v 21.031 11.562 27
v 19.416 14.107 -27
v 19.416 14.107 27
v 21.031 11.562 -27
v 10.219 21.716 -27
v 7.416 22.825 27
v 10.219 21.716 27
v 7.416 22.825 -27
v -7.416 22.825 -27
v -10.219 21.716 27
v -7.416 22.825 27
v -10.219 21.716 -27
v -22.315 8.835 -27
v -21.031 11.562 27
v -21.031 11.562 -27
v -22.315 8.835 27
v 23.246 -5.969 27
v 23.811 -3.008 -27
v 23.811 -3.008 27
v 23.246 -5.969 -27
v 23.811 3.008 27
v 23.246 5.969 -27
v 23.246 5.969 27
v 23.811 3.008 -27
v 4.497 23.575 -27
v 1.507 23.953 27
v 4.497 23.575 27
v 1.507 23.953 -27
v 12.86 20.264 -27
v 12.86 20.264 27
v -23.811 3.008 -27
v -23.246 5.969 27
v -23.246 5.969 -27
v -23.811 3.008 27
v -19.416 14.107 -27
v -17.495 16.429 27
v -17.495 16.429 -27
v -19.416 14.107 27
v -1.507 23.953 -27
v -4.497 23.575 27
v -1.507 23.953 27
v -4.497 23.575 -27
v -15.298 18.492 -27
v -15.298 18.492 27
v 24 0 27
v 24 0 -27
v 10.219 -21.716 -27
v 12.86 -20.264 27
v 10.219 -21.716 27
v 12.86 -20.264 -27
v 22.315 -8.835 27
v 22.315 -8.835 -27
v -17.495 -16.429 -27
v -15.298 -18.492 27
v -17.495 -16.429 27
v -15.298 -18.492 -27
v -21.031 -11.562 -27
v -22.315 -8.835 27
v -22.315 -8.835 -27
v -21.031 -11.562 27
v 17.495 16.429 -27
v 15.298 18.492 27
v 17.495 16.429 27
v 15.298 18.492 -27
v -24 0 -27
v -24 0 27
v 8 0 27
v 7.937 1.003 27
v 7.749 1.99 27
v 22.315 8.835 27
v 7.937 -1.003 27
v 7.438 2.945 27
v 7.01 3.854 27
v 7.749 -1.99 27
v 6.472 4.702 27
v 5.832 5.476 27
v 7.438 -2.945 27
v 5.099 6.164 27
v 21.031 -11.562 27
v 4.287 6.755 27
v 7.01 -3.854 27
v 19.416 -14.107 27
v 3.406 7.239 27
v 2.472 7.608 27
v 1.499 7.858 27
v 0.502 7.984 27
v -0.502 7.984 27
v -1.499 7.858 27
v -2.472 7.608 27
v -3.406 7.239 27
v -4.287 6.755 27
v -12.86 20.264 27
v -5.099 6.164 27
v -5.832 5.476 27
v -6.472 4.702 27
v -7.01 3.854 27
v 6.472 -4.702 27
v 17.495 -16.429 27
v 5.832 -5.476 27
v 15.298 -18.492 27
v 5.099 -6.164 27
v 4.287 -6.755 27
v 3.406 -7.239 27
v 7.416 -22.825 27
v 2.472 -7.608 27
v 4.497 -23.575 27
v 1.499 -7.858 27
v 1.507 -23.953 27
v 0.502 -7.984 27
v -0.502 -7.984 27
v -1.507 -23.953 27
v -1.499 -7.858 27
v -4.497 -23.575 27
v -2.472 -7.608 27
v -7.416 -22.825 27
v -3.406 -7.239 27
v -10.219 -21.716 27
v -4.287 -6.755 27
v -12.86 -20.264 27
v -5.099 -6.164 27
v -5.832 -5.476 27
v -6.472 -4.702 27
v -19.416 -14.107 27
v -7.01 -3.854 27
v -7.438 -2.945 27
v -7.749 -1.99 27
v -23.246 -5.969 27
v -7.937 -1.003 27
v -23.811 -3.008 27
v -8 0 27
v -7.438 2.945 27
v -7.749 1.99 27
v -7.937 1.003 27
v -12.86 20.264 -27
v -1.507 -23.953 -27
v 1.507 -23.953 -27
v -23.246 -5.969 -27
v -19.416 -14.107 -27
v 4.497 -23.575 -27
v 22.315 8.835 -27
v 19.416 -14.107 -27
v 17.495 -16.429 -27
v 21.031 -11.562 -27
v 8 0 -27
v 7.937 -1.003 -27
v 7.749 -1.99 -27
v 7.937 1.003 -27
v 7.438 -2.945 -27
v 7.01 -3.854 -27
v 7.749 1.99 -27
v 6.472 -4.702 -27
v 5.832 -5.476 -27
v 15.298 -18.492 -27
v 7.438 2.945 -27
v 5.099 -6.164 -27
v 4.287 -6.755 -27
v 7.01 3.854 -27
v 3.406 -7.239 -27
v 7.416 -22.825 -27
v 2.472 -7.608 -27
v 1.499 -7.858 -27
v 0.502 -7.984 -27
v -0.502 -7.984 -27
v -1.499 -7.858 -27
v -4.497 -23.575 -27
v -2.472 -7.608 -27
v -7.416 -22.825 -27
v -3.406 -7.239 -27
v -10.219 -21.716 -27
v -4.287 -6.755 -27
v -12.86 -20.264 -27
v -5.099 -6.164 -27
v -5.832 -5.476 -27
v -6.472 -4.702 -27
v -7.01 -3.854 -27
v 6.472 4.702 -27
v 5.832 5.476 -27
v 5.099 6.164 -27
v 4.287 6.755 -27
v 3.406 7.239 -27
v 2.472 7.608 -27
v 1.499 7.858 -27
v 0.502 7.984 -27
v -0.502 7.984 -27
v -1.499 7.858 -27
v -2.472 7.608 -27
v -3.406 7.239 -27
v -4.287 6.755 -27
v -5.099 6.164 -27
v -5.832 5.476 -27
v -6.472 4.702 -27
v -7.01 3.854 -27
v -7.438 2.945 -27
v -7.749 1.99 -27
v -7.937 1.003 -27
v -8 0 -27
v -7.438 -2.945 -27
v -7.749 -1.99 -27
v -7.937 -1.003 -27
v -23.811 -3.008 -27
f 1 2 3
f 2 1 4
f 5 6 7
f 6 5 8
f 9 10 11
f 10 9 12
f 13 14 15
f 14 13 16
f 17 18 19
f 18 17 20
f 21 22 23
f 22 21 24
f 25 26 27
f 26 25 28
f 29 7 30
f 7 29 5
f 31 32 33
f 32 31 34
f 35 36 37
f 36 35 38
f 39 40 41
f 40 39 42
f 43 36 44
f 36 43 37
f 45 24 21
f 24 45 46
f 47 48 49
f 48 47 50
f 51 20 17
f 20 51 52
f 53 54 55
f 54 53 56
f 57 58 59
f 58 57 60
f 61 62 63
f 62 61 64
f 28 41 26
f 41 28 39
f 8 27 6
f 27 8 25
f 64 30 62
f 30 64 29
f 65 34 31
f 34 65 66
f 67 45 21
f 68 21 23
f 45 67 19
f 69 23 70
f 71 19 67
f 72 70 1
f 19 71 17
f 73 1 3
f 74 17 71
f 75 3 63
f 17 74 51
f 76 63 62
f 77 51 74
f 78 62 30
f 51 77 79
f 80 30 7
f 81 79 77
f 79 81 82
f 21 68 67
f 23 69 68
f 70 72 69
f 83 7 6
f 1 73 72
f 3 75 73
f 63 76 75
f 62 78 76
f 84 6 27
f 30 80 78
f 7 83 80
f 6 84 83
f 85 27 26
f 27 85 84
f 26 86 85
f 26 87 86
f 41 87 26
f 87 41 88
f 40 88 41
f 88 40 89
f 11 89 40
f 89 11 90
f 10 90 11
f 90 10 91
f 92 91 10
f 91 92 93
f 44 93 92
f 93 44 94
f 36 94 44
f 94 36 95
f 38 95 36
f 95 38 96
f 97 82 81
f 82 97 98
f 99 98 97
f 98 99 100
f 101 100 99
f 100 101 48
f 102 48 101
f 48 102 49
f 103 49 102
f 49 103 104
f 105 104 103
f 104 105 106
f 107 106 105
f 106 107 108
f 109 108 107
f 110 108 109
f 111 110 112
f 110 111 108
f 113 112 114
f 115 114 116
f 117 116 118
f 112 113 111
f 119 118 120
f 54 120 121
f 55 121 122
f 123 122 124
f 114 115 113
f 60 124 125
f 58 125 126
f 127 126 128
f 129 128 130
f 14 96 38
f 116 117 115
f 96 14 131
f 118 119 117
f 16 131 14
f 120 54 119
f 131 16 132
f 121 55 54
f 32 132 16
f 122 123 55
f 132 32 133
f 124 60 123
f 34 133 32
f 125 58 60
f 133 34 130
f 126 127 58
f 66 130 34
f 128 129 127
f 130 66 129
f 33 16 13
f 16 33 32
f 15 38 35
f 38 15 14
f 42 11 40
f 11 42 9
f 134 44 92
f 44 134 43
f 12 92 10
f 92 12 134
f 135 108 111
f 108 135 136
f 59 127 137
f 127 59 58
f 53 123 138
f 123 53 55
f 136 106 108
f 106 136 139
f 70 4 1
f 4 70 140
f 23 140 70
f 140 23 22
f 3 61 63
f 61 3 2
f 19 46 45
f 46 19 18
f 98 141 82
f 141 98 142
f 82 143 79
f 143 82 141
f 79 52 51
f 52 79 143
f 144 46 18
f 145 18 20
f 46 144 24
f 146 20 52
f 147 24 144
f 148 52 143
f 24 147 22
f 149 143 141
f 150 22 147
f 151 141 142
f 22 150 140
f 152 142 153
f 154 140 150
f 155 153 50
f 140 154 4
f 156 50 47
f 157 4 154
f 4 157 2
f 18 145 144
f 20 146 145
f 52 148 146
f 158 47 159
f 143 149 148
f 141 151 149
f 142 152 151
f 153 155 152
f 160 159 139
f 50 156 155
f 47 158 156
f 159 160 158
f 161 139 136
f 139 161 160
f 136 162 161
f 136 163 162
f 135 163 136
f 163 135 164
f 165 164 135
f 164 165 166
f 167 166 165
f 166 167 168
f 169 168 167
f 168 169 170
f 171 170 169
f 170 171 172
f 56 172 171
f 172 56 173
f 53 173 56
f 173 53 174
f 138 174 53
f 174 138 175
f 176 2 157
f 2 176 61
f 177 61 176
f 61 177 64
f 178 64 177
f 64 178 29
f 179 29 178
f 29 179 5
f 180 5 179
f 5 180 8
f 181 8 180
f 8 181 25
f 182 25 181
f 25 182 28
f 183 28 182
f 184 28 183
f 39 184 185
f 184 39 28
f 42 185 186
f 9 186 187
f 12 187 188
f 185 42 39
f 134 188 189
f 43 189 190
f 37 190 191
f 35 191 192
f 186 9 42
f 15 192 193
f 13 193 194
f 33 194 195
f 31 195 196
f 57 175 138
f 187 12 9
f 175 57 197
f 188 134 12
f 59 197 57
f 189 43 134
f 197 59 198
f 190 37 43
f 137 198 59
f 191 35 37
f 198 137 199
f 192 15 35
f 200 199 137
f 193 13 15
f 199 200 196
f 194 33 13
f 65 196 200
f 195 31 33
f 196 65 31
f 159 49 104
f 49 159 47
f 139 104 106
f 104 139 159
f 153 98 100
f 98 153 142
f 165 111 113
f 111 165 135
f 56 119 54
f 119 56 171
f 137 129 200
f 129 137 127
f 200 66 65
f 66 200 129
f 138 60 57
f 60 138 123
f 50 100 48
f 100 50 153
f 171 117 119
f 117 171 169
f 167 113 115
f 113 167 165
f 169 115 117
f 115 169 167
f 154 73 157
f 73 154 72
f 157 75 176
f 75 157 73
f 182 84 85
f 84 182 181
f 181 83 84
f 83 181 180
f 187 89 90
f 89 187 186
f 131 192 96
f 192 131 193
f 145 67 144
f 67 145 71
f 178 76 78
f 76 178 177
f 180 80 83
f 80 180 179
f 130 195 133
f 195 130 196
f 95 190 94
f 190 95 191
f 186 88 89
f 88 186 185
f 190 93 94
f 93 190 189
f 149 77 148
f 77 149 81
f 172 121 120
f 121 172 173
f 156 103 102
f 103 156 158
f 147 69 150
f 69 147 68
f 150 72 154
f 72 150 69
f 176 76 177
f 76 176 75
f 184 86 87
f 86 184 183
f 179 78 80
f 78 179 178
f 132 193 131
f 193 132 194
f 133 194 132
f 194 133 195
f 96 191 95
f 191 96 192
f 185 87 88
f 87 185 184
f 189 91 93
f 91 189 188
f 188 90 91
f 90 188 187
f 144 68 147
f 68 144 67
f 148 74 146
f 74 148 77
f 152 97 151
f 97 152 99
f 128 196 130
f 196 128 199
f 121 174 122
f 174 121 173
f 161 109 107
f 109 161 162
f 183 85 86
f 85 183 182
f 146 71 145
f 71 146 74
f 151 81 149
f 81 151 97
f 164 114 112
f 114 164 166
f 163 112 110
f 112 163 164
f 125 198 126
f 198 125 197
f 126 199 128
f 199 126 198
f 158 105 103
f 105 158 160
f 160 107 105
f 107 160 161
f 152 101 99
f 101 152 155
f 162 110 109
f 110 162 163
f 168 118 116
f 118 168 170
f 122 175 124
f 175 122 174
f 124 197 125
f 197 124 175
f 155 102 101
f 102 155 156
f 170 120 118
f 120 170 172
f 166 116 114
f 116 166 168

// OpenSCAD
$fn = 50;


difference() {
	union() {
		translate(v = [0, 0, -27.0000000000]) {
			cylinder(h = 54, r = 24.0000000000);
		}
	}
	union() {
		translate(v = [0, 0, -100.0000000000]) {
			cylinder(h = 200, r = 8);
		}
	}
}
